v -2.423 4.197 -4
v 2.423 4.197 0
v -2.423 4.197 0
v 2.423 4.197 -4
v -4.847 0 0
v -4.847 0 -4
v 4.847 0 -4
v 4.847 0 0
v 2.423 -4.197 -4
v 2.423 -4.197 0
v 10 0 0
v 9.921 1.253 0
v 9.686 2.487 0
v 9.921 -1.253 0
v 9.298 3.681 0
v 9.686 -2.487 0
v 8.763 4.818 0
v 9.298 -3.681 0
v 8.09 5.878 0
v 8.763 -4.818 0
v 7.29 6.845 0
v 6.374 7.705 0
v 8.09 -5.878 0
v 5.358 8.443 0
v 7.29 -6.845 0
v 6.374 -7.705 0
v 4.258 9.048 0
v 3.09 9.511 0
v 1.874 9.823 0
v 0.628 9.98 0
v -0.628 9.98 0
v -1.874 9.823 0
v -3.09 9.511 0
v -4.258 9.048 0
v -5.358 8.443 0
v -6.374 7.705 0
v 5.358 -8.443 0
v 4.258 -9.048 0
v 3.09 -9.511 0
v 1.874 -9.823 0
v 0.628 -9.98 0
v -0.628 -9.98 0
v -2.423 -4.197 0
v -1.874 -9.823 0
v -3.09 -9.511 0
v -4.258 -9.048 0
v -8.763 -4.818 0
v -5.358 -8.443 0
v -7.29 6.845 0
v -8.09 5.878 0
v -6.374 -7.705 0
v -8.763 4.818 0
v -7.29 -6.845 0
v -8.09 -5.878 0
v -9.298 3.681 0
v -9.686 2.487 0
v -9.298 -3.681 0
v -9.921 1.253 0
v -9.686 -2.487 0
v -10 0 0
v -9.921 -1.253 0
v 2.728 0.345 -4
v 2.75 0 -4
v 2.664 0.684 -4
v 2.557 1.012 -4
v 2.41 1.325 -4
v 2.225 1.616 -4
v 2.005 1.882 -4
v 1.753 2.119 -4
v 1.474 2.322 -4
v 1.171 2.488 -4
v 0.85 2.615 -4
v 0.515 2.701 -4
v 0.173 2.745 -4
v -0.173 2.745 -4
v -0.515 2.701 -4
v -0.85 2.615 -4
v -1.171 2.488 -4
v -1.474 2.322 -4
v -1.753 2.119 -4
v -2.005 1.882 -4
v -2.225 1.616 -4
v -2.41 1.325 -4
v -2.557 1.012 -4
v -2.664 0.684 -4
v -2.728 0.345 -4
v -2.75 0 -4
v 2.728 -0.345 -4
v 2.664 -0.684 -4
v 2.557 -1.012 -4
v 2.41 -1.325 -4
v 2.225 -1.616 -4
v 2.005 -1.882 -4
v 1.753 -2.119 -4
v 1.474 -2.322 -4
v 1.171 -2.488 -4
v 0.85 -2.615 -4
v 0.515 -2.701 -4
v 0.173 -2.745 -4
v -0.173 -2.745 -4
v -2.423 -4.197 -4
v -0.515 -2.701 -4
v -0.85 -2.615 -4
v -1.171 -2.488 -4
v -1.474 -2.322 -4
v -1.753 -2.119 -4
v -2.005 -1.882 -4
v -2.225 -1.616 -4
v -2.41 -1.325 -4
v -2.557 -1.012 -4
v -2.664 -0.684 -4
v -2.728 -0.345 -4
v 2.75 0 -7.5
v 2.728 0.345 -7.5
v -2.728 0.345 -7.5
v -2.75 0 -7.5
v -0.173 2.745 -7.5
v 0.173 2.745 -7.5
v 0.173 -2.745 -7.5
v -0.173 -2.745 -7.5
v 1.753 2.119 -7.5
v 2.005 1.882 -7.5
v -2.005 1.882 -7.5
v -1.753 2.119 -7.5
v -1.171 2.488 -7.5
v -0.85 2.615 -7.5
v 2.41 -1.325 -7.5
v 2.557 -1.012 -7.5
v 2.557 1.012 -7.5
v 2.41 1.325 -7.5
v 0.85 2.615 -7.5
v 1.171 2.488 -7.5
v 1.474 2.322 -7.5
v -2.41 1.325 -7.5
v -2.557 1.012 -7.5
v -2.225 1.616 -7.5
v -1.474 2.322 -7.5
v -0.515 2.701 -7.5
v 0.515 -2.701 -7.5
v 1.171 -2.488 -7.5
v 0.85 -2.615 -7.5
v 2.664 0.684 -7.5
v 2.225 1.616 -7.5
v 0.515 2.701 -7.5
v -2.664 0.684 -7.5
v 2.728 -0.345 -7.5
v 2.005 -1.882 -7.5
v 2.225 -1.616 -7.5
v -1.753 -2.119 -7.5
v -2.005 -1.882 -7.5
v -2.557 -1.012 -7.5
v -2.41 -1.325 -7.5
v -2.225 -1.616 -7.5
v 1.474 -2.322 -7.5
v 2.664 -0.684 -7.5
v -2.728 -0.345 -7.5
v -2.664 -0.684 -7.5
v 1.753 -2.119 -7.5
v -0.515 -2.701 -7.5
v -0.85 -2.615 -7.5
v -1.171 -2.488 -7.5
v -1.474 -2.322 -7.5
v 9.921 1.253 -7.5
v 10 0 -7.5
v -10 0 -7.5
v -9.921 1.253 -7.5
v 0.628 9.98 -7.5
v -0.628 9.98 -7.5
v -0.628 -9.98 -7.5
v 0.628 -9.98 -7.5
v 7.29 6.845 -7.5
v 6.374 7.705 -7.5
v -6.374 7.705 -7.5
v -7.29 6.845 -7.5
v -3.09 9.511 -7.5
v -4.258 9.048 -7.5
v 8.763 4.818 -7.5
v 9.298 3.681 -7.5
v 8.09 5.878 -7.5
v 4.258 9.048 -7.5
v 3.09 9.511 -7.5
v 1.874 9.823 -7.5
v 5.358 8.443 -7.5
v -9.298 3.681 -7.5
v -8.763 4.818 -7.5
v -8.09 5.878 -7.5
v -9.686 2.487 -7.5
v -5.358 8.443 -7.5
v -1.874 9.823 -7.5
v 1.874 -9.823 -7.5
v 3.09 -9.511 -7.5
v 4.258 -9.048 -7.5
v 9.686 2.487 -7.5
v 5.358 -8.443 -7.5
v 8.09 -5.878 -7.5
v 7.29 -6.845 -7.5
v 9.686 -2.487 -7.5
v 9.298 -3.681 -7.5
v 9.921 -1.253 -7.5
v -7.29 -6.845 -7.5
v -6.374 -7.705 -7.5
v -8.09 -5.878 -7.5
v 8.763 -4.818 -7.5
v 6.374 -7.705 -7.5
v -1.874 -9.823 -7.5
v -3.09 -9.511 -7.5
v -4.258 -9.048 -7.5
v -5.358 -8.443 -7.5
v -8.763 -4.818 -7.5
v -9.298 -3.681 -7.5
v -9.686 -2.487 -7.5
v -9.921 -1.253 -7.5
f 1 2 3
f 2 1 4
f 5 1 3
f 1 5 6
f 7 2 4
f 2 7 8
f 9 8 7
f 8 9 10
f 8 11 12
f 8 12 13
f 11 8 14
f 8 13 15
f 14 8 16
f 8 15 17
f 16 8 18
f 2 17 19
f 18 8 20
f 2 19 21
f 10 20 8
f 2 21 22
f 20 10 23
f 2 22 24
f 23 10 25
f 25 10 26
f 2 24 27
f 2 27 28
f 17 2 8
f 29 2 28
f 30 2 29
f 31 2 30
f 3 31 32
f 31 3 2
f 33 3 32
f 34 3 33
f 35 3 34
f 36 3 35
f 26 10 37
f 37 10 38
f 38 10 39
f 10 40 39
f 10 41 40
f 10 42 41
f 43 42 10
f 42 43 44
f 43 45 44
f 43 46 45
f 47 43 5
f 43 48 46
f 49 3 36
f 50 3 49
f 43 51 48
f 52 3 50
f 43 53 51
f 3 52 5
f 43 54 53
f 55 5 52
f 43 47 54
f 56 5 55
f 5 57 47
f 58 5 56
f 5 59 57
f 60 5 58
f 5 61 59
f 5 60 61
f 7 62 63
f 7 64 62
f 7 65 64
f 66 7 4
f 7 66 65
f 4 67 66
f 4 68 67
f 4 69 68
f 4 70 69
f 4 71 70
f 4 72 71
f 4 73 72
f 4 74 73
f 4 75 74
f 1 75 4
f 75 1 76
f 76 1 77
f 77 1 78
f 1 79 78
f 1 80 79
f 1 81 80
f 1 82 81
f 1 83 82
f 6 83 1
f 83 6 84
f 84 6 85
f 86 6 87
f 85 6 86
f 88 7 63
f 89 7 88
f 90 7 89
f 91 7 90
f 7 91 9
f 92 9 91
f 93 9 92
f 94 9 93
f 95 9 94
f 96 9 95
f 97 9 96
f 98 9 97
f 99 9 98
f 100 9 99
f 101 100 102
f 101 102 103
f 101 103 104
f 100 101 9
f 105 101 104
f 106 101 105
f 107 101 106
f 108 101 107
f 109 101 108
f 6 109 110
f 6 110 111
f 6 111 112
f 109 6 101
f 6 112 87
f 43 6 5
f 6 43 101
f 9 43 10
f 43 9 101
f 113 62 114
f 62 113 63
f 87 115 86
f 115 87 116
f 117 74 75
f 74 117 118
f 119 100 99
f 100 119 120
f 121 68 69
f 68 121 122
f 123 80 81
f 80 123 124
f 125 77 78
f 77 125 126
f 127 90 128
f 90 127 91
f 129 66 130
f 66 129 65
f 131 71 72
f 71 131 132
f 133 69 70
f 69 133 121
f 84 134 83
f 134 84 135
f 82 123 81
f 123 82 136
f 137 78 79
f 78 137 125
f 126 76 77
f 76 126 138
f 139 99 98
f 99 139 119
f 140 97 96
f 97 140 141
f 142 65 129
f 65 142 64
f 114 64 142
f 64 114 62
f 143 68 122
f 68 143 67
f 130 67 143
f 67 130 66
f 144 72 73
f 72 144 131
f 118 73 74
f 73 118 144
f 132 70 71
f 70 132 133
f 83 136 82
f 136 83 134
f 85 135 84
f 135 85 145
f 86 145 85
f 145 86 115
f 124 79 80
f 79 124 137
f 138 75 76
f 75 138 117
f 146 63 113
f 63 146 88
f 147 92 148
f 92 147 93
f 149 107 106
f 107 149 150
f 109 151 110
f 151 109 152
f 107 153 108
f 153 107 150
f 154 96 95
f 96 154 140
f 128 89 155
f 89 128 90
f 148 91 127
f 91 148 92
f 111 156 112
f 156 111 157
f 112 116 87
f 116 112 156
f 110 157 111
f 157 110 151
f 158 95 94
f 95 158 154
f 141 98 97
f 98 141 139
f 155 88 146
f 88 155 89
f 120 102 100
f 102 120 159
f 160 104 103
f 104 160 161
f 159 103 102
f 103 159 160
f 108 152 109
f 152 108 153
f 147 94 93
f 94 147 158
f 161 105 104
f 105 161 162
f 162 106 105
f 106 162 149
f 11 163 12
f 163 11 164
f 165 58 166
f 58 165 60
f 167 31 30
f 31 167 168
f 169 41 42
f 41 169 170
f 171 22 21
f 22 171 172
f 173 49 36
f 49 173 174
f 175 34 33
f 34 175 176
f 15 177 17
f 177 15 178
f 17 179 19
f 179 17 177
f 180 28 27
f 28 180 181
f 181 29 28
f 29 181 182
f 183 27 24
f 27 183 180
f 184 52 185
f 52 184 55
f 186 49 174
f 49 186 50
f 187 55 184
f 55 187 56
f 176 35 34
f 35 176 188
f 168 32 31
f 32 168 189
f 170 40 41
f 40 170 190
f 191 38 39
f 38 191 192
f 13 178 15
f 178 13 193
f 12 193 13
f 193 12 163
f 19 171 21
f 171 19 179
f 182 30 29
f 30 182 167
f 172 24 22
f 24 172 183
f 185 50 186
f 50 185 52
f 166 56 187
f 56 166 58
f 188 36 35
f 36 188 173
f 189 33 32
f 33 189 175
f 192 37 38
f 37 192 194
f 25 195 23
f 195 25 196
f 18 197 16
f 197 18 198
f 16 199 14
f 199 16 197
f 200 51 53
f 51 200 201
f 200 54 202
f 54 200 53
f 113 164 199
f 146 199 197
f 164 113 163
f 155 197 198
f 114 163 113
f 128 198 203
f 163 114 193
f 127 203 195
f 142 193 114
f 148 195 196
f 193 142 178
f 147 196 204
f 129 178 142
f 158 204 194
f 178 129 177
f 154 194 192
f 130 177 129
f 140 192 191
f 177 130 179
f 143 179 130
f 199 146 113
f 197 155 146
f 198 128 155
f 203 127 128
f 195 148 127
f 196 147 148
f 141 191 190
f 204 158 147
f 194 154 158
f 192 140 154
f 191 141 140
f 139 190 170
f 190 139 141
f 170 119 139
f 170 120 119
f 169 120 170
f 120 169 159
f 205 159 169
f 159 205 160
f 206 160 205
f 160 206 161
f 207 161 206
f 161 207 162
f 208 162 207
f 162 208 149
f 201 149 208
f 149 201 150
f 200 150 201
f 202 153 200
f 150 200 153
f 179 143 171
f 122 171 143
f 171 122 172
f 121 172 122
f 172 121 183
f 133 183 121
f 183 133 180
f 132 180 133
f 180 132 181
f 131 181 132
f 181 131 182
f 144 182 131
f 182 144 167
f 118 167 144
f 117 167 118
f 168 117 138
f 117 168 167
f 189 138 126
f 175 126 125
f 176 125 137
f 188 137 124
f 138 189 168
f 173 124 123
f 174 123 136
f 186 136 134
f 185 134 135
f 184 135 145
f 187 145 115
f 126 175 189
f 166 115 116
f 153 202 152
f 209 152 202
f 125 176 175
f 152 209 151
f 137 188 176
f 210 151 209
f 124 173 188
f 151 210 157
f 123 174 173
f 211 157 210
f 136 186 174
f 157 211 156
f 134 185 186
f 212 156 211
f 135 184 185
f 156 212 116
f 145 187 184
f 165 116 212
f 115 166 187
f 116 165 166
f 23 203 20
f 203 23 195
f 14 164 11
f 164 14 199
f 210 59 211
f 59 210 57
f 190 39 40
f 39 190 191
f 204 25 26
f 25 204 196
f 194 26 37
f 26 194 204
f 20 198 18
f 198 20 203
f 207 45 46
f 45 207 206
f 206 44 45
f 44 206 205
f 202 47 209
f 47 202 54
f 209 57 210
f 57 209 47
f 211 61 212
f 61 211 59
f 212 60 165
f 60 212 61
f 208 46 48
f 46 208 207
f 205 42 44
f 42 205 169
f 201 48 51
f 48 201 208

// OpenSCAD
$fn = 50;

difference() {
	union() {
		translate(v = [0, 0, -7.5]) {
			cylinder(h = 7.5, r = 10.0);
		}
	}
	union() {
		translate(v = [0, 0, 0]) {
			rotate(a = [0, 0, 0]) {
				difference() {
					union() {
						translate(v = [0, 0, -4]) {
							linear_extrude(height = 4) {
								polygon(points = [[4.8468, 0.0], [2.4234000000000004, 4.197451927062417], [-2.423399999999999, 4.197451927062417], [-4.8468, 5.935618106107392e-16], [-2.423400000000002, -4.197451927062416], [2.423399999999997, -4.197451927062419]]);
							}
						}
					}
					union();
				}
			}
		}
		#translate(v = [0, 0, -100.0]) {
			cylinder(h = 200, r = 2.75);
		}
	}
}
